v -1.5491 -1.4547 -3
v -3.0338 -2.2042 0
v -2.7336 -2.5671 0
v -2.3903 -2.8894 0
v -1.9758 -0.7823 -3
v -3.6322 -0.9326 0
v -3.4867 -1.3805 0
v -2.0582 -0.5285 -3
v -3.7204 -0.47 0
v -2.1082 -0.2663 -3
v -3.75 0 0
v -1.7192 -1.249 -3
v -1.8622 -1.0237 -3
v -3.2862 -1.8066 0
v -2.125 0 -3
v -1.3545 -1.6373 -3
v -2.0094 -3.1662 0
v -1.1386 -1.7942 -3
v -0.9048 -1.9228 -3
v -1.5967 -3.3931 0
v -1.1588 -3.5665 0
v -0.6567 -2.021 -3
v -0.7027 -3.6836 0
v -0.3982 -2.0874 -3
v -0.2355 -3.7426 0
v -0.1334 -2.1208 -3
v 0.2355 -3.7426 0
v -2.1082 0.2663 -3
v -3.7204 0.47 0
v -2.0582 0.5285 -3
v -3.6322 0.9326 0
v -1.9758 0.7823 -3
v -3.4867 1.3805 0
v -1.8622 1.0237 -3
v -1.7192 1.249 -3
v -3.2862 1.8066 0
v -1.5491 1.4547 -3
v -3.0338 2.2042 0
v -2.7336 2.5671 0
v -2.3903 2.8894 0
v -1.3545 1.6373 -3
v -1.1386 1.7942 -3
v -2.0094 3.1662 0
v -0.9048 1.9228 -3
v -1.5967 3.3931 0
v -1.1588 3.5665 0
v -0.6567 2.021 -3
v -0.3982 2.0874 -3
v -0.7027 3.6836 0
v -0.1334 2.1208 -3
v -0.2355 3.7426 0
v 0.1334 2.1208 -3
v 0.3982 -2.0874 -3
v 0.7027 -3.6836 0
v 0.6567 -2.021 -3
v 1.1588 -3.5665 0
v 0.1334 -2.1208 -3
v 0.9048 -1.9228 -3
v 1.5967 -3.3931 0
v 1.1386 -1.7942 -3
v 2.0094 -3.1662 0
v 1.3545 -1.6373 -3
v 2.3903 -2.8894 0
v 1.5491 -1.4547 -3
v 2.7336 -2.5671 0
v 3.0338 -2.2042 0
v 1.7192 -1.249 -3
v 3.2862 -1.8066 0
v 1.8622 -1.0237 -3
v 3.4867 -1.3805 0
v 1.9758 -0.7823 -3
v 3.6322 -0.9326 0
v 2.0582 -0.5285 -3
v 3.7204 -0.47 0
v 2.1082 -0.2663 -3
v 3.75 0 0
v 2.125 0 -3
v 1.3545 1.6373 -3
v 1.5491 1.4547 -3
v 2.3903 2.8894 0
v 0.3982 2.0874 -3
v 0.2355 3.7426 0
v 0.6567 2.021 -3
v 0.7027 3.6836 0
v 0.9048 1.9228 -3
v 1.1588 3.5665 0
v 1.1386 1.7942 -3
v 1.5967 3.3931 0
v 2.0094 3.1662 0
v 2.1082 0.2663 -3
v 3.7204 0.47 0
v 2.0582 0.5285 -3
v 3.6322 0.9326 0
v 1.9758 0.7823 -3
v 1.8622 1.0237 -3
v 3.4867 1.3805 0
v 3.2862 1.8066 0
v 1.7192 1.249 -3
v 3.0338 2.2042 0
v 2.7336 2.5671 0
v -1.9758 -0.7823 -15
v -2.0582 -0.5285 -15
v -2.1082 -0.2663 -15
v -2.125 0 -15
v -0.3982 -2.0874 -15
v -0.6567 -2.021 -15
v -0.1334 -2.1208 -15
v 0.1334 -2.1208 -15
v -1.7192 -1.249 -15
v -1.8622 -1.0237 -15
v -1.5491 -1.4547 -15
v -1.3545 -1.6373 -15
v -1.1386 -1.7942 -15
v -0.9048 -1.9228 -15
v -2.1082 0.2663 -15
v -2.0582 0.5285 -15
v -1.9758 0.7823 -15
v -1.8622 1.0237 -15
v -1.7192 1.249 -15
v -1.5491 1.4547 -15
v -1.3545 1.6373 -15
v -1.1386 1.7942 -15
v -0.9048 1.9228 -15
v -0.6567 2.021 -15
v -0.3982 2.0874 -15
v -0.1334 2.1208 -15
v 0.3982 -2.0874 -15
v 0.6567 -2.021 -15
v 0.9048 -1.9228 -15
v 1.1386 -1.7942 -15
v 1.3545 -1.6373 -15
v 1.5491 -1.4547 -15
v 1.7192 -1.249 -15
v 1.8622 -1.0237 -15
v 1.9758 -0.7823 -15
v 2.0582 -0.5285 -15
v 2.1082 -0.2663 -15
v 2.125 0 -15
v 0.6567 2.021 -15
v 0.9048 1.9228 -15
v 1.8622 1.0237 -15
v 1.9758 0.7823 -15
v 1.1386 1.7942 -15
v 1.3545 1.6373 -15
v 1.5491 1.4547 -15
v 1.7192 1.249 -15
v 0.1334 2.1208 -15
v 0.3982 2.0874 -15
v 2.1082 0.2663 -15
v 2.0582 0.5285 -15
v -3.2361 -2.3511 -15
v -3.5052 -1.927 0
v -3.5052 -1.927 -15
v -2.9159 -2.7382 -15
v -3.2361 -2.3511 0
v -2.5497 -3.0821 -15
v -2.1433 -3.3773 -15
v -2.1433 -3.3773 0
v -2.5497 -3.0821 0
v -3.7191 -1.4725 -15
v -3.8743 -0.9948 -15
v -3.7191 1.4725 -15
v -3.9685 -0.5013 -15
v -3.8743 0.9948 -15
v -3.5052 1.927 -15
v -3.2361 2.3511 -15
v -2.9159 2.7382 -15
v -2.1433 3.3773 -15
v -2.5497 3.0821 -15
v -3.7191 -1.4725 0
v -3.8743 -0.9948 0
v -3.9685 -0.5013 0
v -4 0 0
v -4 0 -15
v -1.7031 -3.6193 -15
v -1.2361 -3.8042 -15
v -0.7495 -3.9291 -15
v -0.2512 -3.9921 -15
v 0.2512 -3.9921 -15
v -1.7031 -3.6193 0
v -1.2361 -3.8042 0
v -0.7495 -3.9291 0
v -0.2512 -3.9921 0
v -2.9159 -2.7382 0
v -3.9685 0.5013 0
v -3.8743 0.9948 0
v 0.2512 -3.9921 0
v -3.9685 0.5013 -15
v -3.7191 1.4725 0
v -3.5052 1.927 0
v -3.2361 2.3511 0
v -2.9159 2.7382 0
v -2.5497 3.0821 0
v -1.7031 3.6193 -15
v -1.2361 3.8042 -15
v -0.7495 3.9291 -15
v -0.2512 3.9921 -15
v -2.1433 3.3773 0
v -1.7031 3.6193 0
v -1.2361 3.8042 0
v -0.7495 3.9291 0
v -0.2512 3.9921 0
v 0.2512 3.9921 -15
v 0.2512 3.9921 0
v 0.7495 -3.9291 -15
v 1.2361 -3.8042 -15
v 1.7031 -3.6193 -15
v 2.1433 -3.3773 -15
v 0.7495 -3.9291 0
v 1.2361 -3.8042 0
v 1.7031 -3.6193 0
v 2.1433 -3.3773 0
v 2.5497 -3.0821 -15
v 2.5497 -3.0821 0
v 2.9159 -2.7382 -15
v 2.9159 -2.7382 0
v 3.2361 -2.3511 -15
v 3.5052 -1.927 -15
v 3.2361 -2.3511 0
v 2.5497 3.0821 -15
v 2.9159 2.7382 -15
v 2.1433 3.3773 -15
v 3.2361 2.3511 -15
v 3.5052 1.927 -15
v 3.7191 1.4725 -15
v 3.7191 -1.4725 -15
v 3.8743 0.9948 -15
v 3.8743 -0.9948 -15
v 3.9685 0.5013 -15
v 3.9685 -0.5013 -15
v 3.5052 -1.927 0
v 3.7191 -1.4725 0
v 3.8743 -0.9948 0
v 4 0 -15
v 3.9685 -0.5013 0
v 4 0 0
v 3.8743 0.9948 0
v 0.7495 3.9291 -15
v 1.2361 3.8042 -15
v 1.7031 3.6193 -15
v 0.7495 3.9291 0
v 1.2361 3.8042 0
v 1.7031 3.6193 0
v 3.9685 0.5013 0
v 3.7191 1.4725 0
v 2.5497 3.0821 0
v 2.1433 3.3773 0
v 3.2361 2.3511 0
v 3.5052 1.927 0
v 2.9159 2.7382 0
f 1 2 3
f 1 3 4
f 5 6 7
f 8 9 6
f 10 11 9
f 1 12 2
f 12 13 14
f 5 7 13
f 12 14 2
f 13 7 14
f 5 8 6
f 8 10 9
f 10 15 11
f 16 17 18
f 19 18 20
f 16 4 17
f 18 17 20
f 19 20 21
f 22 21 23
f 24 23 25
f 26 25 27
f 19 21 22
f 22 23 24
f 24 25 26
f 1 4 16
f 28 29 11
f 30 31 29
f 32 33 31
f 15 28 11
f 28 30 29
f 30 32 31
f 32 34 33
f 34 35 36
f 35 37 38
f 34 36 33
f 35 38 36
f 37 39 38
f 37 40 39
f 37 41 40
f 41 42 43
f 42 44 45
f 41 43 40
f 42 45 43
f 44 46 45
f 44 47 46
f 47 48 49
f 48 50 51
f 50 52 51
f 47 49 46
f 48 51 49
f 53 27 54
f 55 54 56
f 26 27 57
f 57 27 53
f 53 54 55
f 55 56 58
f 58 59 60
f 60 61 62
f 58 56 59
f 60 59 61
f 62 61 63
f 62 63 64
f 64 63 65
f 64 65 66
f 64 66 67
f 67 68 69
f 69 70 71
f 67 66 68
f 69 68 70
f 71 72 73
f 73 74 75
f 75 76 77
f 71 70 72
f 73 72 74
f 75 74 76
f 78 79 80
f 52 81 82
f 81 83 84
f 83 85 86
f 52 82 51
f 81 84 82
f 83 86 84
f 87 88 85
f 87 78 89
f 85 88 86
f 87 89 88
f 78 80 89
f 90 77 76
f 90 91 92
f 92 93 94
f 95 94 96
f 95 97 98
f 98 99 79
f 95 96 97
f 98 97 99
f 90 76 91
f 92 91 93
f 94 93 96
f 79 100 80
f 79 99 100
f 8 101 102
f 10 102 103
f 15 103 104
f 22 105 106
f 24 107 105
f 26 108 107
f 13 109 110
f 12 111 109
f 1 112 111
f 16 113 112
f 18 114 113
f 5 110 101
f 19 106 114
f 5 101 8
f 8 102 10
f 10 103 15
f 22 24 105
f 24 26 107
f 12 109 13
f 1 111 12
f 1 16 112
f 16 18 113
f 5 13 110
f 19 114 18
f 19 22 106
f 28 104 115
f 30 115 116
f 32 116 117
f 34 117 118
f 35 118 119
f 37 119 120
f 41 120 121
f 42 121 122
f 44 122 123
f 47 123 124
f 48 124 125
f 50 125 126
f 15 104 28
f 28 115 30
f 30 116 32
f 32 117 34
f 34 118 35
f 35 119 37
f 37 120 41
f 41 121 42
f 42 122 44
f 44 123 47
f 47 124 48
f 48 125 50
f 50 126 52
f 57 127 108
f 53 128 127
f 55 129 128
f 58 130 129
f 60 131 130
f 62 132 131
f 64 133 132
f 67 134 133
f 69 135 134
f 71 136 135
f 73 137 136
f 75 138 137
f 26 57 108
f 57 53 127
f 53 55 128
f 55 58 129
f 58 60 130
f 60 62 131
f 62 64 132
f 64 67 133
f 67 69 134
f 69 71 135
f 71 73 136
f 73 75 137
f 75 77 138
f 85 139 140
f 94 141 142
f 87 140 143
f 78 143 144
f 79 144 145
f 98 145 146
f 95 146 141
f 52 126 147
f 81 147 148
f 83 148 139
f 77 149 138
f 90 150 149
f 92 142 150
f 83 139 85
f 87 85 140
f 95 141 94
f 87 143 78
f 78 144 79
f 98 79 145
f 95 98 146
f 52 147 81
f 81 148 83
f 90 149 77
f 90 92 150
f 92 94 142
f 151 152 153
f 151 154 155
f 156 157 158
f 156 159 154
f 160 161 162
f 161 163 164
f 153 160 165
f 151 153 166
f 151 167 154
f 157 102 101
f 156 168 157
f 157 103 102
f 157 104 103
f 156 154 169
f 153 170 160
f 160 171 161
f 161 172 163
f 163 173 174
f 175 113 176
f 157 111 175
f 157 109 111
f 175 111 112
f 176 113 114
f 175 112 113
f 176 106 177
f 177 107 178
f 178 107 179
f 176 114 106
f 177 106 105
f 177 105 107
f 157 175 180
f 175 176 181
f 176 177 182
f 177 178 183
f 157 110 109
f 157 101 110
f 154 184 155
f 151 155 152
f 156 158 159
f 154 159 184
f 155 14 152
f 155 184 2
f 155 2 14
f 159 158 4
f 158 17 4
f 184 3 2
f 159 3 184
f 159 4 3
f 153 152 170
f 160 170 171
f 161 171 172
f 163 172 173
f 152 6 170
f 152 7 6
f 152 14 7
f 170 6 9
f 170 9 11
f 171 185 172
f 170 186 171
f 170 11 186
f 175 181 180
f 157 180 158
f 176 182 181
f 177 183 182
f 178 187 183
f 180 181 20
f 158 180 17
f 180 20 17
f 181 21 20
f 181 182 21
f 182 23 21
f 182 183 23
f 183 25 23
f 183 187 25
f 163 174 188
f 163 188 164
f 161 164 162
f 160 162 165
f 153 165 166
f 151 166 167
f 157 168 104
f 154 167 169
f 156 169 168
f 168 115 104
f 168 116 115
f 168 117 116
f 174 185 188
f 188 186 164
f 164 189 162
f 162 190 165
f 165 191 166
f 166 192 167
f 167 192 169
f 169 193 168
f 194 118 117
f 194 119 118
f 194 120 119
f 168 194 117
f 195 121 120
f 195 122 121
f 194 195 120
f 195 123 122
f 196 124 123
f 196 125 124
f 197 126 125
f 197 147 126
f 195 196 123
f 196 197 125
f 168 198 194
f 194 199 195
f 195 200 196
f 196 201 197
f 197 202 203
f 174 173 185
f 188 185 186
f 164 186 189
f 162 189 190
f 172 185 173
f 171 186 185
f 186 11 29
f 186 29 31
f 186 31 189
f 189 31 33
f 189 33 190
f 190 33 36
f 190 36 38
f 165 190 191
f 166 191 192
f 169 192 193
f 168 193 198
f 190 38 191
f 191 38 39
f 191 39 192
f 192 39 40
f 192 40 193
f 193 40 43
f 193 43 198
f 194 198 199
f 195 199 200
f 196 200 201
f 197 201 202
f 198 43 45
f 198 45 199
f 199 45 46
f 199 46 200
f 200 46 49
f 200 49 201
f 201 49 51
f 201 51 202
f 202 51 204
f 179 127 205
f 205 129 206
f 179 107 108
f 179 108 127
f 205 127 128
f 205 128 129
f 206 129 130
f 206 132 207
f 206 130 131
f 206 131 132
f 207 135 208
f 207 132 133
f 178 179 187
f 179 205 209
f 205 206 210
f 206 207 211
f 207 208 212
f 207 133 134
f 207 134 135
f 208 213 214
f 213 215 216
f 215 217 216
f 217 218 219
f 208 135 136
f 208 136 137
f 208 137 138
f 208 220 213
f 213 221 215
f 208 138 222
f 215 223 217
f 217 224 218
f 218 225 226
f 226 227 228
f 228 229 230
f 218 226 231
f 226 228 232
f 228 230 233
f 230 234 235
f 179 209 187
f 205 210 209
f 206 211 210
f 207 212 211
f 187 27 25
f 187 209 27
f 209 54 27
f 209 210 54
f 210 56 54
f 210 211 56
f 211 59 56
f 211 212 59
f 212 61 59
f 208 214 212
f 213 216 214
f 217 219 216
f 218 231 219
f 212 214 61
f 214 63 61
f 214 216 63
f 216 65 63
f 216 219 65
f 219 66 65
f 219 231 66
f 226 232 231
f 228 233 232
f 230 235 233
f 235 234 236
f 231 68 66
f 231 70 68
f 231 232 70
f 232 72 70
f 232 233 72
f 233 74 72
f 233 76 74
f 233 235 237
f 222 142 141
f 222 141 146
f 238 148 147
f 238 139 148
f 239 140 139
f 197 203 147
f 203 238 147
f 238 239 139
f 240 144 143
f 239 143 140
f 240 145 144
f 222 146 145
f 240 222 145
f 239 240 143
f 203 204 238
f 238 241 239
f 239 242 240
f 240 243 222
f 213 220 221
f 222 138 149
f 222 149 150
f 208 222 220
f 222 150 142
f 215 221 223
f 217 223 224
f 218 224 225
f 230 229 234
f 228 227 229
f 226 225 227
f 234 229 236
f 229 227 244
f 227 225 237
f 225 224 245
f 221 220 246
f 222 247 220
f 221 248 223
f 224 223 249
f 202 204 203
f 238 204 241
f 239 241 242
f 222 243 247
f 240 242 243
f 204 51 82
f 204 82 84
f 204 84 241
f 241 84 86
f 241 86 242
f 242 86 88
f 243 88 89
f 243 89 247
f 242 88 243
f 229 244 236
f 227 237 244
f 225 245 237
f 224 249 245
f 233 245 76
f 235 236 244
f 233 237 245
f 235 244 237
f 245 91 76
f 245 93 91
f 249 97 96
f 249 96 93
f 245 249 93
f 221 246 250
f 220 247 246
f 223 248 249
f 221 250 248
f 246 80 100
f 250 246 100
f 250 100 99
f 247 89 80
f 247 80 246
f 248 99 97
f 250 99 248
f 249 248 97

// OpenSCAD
$fn = 50;

difference() {
	union() {
		translate(v = [0, 0, -15.0]) {
			cylinder(h = 15, r = 4.0);
		}
	}
	union() {
		translate(v = [0, 0, 0]) {
			rotate(a = [0, 0, 0]) {
				difference() {
					union() {
						translate(v = [0, 0, -18.0]) {
							cylinder(h = 18, r = 2.0);
						}
						translate(v = [0, 0, -3]) {
							cylinder(h = 3, r1 = 2.125, r2 = 3.75);
						}
						translate(v = [0, 0, -18.0]) {
							cylinder(h = 18, r = 2.125);
						}
						translate(v = [0, 0, -18.0]) {
							cylinder(h = 18, r = 2.0);
						}
					}
					union();
				}
			}
		}
	}
}
